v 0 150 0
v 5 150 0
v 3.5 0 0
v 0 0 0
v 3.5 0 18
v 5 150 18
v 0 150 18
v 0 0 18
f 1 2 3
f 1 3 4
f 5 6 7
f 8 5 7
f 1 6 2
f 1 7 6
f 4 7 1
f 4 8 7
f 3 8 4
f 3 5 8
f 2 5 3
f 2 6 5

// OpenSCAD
linear_extrude(18)
{
polygon([[0,0],[3.5,0],[5,150],[0,150]]);
}
